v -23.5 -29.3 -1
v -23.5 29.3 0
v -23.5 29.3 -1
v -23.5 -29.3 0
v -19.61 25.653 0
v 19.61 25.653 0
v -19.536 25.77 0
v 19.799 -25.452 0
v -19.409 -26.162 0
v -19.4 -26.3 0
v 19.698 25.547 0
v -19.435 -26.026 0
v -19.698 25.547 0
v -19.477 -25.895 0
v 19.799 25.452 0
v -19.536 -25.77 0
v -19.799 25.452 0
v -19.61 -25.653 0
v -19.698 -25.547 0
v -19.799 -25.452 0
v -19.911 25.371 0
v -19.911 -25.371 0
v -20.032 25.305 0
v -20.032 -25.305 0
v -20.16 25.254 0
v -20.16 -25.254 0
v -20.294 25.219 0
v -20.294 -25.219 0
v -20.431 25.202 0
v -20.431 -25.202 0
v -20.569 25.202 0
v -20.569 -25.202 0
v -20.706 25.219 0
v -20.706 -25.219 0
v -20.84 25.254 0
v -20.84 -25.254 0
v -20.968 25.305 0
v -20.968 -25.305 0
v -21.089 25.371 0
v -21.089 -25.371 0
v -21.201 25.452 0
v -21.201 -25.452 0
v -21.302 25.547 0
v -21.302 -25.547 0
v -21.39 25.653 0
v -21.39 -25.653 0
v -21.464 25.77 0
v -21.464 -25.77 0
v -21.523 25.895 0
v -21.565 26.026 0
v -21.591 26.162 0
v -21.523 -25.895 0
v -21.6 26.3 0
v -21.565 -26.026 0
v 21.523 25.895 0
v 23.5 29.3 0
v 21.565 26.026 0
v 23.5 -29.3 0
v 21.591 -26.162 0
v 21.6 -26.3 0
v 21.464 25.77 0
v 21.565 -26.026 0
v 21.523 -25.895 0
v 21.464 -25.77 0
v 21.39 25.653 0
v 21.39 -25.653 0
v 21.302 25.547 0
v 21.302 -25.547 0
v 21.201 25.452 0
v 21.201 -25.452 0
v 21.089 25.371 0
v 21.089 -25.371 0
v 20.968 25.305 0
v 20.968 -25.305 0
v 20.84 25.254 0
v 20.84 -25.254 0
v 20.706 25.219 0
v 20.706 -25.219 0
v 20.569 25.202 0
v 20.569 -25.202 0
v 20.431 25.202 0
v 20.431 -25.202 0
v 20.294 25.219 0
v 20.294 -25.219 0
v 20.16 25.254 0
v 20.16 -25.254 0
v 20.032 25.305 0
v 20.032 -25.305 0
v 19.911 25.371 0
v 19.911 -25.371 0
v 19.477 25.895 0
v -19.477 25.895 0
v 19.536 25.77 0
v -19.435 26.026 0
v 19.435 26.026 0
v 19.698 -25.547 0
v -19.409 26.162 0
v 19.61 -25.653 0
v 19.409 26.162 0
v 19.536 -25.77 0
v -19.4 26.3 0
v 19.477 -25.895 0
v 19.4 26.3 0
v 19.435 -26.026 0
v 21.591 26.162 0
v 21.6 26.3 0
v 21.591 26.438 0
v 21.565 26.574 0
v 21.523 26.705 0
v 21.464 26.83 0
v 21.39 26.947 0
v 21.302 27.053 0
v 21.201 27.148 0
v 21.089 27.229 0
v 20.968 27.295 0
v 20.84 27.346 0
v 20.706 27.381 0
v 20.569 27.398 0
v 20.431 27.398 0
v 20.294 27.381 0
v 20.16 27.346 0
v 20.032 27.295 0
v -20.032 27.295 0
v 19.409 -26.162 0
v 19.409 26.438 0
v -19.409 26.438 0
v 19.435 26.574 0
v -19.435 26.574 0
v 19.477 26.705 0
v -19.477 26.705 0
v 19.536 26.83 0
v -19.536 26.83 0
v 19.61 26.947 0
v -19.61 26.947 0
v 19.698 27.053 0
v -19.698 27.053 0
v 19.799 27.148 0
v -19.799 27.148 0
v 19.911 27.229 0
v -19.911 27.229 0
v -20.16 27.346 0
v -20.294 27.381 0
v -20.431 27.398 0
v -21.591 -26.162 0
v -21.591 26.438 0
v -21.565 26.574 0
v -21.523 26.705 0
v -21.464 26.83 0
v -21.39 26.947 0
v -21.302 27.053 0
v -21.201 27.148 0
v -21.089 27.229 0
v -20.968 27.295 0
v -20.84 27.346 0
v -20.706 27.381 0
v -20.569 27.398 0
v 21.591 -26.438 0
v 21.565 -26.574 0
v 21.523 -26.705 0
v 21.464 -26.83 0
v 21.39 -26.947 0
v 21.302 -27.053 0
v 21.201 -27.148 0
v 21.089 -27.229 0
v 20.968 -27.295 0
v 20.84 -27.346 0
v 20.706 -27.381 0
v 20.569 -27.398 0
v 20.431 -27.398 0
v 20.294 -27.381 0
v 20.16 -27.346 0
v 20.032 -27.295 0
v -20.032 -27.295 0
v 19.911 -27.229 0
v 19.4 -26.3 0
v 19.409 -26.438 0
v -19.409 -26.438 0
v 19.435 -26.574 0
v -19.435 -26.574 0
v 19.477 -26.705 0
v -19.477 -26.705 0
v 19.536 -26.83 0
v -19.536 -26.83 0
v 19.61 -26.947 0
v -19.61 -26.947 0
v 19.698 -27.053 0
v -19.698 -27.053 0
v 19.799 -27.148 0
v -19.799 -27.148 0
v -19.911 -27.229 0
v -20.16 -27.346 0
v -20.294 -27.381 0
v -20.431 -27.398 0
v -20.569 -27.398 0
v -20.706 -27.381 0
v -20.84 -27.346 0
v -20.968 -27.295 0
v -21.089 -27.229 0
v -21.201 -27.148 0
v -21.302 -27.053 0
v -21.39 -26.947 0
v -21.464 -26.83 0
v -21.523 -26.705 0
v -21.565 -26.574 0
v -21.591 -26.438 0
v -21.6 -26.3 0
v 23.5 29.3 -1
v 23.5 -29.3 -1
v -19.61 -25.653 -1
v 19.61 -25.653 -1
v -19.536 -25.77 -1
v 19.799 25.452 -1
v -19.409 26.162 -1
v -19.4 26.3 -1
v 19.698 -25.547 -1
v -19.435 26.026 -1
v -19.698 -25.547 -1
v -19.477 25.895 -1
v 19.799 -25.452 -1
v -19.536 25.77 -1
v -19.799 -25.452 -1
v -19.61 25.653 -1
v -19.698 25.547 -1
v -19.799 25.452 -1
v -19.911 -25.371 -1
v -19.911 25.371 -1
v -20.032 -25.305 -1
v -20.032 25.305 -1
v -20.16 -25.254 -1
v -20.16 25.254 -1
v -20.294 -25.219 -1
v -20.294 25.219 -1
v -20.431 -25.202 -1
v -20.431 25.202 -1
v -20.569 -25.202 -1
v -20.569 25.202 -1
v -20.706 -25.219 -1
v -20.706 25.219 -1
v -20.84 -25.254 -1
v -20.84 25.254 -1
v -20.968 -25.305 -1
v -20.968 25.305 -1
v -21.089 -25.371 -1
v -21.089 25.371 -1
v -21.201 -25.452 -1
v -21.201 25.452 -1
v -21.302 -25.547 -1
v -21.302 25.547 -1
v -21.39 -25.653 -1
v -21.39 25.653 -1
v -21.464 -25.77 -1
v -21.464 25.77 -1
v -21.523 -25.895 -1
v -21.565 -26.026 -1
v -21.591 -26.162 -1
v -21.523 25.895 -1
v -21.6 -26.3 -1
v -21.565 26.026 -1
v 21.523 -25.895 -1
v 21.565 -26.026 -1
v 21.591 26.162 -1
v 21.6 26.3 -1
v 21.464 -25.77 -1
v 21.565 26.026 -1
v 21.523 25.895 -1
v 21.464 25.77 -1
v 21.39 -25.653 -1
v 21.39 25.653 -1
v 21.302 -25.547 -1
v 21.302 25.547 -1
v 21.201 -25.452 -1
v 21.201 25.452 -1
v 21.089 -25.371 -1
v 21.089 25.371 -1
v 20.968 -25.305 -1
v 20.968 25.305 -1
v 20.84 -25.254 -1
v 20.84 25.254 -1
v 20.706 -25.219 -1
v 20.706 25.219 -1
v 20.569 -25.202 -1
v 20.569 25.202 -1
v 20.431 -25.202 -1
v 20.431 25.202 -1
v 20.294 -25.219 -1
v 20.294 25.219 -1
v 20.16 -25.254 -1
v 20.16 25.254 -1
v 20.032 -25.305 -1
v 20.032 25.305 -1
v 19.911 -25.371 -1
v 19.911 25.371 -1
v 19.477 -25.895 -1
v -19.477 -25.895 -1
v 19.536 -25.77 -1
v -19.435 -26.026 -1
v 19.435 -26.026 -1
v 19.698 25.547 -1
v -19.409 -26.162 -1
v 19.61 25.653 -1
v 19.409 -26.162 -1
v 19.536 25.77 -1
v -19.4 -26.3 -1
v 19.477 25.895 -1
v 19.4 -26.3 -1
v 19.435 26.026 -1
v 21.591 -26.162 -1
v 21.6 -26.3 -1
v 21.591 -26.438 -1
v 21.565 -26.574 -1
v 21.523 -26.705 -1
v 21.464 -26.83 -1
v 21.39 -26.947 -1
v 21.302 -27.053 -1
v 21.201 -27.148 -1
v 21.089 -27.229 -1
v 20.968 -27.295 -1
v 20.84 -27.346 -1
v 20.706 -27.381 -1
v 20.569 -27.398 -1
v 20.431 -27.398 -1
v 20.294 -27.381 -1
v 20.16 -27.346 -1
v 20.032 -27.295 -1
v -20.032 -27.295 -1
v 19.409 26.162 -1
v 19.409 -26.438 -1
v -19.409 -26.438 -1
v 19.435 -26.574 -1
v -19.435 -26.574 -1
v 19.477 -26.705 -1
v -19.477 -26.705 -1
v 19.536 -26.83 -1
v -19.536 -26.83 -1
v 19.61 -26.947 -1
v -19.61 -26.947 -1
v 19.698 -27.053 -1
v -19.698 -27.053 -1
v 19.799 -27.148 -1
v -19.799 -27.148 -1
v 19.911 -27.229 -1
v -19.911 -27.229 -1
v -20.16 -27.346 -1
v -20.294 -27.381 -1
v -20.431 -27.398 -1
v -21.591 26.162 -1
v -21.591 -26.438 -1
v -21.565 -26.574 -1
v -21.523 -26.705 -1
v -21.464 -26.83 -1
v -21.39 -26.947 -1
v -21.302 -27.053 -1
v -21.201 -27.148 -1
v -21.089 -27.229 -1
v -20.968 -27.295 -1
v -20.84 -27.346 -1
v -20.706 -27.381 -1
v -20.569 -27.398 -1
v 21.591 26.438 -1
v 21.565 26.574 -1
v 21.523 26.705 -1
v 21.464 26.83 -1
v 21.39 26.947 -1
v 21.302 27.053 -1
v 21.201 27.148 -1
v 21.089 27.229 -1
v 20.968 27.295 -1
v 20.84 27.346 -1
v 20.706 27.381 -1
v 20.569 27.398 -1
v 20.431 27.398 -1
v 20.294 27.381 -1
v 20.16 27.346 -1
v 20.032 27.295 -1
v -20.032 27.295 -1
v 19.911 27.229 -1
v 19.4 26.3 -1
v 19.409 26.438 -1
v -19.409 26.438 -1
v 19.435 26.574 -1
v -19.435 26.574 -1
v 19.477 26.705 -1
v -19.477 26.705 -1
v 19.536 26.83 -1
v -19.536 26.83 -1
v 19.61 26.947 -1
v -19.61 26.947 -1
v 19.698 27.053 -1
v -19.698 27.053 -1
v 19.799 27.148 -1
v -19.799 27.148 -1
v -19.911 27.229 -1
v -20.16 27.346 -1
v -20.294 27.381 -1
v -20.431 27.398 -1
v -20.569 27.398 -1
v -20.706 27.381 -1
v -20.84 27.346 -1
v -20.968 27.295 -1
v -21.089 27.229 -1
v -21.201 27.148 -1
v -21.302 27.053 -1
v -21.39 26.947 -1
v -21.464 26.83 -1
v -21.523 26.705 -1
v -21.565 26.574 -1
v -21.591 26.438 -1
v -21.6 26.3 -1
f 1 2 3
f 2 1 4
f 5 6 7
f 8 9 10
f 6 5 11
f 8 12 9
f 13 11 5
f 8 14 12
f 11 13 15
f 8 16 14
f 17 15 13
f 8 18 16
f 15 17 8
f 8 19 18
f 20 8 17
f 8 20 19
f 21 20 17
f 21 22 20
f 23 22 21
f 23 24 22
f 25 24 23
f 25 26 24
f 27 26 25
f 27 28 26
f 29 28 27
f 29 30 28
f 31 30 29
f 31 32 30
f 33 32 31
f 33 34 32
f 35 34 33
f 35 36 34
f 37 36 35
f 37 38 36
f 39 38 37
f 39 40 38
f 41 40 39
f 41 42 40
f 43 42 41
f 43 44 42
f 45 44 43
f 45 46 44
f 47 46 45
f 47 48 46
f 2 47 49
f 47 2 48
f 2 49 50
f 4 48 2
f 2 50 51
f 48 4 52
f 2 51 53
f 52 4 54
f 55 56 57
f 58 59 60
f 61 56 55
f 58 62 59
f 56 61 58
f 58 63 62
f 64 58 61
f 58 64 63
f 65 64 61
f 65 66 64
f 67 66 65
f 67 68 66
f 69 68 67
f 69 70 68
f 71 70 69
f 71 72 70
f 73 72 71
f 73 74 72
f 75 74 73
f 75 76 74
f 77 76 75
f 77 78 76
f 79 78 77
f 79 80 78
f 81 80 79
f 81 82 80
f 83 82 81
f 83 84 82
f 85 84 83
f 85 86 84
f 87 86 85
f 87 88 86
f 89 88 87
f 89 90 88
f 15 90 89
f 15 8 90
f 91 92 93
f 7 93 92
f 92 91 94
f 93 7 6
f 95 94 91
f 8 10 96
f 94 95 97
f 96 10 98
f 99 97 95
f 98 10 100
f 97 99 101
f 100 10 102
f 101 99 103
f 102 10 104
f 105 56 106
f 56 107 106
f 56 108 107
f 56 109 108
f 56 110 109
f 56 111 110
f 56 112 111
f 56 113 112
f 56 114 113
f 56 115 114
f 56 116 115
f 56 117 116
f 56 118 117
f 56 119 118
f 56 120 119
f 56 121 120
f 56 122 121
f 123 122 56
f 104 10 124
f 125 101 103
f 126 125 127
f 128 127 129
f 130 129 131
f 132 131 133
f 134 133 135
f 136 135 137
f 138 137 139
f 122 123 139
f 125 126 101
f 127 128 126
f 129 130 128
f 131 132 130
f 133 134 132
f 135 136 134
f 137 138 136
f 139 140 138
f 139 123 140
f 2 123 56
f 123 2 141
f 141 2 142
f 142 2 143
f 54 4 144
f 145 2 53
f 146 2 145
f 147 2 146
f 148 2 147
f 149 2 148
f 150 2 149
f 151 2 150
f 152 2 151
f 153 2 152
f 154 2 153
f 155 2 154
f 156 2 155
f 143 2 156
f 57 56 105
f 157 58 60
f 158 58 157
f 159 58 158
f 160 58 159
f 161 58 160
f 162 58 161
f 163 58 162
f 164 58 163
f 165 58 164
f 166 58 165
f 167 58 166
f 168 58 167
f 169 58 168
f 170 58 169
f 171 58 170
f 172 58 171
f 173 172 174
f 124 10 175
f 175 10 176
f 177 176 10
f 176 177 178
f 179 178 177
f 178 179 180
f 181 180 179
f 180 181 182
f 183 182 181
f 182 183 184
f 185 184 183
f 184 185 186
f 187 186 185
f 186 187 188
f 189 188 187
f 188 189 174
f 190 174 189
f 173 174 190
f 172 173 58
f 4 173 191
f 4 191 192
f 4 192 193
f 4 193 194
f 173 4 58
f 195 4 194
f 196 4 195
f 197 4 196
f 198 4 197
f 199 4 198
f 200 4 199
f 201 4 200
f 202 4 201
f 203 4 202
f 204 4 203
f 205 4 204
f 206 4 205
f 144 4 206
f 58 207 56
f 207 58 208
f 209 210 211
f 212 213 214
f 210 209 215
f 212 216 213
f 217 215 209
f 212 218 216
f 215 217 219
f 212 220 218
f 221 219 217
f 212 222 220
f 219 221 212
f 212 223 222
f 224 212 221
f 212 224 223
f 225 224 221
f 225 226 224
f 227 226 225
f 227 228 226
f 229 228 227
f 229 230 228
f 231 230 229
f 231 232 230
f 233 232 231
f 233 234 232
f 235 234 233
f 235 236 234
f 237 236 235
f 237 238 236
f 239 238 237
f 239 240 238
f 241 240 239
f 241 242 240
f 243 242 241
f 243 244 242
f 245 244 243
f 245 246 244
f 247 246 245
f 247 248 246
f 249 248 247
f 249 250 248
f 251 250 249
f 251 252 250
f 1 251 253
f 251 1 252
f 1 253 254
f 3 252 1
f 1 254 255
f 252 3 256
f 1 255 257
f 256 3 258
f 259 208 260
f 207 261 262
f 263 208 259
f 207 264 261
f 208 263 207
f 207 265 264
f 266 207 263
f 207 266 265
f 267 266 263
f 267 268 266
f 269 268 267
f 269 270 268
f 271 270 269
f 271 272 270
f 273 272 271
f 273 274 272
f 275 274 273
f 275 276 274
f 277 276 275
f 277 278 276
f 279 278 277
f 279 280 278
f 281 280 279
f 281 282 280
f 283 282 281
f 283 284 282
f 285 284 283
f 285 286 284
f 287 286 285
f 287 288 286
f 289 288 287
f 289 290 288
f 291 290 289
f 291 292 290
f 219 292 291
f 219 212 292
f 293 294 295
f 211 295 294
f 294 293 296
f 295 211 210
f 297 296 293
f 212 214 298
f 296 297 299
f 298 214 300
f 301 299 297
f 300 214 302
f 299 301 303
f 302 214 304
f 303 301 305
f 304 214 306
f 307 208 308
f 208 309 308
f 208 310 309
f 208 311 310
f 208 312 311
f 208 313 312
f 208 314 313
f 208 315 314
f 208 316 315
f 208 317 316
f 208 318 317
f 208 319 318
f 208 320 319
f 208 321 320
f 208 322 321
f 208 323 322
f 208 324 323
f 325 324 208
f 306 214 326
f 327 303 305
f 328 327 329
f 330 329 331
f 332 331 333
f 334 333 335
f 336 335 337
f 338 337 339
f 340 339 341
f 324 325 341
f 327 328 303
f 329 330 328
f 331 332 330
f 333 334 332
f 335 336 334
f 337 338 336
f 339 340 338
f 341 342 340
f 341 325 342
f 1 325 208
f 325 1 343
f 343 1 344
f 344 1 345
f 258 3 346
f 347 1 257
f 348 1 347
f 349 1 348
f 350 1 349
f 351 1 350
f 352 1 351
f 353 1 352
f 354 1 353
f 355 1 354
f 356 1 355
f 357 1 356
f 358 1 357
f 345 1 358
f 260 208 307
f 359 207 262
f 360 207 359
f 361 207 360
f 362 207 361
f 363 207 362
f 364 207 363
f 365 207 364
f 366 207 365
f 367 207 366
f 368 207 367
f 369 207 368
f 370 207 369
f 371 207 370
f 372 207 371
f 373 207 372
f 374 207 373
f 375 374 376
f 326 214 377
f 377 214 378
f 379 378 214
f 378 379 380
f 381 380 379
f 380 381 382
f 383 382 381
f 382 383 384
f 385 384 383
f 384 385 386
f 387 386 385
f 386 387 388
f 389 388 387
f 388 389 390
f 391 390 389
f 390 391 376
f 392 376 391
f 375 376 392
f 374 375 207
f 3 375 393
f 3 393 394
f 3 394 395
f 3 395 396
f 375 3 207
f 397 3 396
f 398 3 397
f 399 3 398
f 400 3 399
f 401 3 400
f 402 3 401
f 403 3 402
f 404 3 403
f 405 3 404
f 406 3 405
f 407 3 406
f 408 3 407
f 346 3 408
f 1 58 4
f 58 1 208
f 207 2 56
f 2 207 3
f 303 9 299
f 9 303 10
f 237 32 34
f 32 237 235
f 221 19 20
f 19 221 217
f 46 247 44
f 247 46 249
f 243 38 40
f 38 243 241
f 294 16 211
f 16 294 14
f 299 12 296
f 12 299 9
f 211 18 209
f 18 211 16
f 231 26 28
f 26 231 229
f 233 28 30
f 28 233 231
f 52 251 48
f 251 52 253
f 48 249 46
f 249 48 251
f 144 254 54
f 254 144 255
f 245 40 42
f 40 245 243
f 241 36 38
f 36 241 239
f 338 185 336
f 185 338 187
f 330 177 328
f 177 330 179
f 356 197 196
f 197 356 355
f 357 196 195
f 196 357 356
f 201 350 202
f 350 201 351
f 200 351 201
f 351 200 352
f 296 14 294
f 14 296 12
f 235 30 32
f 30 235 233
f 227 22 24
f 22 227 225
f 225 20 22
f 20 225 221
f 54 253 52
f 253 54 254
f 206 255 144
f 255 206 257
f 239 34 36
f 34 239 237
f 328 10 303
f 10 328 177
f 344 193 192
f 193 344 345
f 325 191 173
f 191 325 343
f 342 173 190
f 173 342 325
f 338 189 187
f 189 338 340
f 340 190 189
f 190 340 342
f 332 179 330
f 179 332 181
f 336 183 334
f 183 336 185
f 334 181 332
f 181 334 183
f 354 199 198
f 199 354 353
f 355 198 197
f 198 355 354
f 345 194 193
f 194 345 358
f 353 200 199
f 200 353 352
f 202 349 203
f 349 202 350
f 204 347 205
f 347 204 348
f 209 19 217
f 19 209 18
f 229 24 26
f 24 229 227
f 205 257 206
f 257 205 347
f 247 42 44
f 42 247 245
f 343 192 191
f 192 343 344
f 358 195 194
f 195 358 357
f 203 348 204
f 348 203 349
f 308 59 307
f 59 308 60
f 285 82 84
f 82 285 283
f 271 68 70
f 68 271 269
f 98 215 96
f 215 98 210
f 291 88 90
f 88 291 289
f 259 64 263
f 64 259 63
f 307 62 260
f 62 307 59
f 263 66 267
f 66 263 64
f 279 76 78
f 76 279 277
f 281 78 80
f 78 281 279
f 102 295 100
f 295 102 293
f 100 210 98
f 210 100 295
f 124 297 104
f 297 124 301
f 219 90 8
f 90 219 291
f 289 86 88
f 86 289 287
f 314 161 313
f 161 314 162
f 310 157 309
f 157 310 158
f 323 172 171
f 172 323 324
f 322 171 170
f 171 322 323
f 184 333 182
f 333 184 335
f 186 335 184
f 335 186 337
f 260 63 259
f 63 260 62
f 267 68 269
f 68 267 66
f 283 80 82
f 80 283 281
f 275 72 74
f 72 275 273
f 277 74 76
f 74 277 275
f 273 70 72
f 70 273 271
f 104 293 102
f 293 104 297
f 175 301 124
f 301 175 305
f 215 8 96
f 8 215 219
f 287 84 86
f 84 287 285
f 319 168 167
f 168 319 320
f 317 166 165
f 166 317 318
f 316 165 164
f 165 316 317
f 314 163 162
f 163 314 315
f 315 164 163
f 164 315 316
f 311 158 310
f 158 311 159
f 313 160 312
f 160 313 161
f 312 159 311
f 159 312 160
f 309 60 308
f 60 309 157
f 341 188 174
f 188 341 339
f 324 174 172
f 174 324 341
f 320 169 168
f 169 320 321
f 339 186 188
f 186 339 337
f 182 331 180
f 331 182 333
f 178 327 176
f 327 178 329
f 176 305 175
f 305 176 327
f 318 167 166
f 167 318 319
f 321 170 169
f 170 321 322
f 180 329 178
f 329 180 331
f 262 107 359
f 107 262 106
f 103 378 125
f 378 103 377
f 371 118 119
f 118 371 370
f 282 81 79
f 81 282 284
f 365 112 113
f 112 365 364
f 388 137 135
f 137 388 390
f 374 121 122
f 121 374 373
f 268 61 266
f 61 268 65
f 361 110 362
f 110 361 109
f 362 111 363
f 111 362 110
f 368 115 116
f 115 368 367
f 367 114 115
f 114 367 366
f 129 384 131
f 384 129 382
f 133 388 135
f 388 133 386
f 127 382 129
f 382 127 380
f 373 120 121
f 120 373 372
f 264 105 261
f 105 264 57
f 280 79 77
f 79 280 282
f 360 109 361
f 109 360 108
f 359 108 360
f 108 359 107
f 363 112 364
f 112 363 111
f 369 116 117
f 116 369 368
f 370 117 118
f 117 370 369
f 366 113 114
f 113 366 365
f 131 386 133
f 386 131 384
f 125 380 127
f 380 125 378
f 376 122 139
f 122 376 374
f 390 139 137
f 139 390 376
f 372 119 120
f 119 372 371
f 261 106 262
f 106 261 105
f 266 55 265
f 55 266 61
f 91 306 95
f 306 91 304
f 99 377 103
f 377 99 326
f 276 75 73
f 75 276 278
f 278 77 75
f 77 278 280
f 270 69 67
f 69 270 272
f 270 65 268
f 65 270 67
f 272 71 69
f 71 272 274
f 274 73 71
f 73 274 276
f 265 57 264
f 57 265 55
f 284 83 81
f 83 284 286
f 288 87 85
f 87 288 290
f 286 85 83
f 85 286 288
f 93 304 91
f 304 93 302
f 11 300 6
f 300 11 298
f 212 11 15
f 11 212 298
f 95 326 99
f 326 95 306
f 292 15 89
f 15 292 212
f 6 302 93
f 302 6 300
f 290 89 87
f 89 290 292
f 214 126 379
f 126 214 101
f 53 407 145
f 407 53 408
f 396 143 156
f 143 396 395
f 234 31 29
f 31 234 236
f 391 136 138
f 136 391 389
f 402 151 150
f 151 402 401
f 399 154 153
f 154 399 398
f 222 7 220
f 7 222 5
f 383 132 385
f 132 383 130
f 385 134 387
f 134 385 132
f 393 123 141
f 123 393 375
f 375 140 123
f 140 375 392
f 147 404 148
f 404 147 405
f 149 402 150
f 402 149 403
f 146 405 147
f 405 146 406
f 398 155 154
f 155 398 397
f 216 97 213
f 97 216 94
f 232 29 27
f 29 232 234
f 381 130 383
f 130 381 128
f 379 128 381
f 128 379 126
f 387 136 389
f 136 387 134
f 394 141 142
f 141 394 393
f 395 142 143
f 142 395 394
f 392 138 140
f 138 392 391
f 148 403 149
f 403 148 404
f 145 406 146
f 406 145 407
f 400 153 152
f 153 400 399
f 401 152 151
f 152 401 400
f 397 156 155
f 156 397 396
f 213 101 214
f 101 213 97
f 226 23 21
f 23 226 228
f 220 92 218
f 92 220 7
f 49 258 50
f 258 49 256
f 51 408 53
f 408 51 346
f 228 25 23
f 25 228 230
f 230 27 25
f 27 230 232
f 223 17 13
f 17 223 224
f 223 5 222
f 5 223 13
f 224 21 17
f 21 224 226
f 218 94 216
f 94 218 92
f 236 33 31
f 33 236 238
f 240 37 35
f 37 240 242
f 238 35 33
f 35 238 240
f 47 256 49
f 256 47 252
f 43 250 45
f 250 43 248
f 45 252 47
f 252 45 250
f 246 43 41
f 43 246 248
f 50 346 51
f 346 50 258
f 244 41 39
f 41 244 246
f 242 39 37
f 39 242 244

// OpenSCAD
// file: Includes.scad
coilWidth = 35;
coilHeight = 46.6;
coilBundleWidth = 1.8;
coilDepth=3.5;
coilBackplate = 1;
coilBorder=6;
$fn=50;
wireWidth=3.5;
wireHeight=3.5;
centerWidth=12;
screHoleOffset = 3;
screwHoleSize = 1.5;
screwHoleSize2 = 2.2;
// main file
include <Includes.scad>;

wireCutoutLength = coilHeight / 2 + coilBorder;

mainCubeWidth = coilWidth+coilBorder*2;
mainCubeHeight = coilHeight+coilBorder*2;
rightBorderSpace = coilBorder- wireWidth;

difference() {
    translate([-rightBorderSpace,0,0])
    {
        difference()
        {
            translate([rightBorderSpace,0,-coilBackplate/2]) {
                cube([coilWidth+coilBorder*2,coilHeight+coilBorder*2,coilBackplate],center=true);
            }
           
        }
    }

    screwHoleZ = -coilBackplate;

    translate([-mainCubeWidth/2+screHoleOffset,-mainCubeHeight/2+screHoleOffset,screwHoleZ]) {
        cylinder(d=screwHoleSize2,h=coilDepth);
    }
    translate([mainCubeWidth/2-screHoleOffset,-mainCubeHeight/2+screHoleOffset,screwHoleZ]) {
        cylinder(d=screwHoleSize2,h=coilDepth);
    }
    translate([mainCubeWidth/2-screHoleOffset,mainCubeHeight/2-screHoleOffset,screwHoleZ]) {
        cylinder(d=screwHoleSize2,h=coilDepth);
    }
    translate([-mainCubeWidth/2+screHoleOffset,mainCubeHeight/2-screHoleOffset,screwHoleZ]) {
        cylinder(d=screwHoleSize2,h=coilDepth);
    }
}
